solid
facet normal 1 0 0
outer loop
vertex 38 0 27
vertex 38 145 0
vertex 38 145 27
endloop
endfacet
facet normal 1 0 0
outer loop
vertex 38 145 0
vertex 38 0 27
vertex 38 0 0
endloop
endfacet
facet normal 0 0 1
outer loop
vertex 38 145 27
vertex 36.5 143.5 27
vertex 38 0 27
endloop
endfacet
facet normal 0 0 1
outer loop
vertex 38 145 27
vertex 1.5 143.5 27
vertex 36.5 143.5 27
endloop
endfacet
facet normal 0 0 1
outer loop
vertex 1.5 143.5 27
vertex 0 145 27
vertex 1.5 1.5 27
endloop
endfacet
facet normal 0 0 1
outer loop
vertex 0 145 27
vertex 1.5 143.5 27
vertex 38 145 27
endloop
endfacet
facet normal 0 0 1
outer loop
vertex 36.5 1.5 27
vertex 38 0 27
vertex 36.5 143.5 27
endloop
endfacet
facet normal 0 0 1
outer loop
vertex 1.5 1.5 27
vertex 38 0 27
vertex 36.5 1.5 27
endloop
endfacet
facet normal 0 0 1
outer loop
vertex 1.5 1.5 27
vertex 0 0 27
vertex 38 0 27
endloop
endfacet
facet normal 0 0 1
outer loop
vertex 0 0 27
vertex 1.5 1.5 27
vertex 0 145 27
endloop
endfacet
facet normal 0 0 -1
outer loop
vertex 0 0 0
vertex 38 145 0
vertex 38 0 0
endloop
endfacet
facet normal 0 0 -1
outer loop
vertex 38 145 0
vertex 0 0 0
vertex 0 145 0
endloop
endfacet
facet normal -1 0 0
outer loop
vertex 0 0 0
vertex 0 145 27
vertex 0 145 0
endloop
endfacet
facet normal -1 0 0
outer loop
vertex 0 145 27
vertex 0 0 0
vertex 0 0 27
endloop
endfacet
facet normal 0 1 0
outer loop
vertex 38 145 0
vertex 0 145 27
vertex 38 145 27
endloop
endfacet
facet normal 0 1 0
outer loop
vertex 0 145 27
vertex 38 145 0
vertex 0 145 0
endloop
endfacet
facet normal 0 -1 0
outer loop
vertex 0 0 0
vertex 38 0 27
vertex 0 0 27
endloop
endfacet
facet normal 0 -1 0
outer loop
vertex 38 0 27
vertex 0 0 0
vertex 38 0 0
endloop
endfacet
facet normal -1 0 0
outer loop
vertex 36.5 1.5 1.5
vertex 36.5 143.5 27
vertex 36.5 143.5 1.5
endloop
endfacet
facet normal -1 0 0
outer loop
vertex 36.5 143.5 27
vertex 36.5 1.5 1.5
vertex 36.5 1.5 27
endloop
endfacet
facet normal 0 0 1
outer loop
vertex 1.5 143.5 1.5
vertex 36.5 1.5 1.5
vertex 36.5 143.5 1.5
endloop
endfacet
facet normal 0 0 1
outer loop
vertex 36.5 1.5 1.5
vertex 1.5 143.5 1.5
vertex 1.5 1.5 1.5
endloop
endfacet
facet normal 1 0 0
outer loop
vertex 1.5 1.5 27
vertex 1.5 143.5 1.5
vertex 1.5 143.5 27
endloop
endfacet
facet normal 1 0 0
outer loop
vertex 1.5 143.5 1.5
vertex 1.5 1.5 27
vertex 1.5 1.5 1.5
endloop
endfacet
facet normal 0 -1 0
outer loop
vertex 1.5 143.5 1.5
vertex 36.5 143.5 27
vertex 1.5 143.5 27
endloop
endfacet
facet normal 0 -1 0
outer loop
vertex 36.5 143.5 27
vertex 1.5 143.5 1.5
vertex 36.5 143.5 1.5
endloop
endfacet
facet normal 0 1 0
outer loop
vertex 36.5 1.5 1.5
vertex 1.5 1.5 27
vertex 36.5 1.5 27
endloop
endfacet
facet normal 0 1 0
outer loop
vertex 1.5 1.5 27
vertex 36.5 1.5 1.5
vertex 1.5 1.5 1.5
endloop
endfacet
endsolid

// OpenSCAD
/* [Box Parameters] */


boxWidth = 38;
boxDepth = 145;
boxHeight = 27;
cylinderHeight = 35;
wallThick = 1.5;


difference() {
    cube([boxWidth,boxDepth,boxHeight]);
    color("pink") translate([wallThick, wallThick, wallThick]) cube([boxWidth-(wallThick*2),boxDepth-wallThick*2,boxHeight]);
}
